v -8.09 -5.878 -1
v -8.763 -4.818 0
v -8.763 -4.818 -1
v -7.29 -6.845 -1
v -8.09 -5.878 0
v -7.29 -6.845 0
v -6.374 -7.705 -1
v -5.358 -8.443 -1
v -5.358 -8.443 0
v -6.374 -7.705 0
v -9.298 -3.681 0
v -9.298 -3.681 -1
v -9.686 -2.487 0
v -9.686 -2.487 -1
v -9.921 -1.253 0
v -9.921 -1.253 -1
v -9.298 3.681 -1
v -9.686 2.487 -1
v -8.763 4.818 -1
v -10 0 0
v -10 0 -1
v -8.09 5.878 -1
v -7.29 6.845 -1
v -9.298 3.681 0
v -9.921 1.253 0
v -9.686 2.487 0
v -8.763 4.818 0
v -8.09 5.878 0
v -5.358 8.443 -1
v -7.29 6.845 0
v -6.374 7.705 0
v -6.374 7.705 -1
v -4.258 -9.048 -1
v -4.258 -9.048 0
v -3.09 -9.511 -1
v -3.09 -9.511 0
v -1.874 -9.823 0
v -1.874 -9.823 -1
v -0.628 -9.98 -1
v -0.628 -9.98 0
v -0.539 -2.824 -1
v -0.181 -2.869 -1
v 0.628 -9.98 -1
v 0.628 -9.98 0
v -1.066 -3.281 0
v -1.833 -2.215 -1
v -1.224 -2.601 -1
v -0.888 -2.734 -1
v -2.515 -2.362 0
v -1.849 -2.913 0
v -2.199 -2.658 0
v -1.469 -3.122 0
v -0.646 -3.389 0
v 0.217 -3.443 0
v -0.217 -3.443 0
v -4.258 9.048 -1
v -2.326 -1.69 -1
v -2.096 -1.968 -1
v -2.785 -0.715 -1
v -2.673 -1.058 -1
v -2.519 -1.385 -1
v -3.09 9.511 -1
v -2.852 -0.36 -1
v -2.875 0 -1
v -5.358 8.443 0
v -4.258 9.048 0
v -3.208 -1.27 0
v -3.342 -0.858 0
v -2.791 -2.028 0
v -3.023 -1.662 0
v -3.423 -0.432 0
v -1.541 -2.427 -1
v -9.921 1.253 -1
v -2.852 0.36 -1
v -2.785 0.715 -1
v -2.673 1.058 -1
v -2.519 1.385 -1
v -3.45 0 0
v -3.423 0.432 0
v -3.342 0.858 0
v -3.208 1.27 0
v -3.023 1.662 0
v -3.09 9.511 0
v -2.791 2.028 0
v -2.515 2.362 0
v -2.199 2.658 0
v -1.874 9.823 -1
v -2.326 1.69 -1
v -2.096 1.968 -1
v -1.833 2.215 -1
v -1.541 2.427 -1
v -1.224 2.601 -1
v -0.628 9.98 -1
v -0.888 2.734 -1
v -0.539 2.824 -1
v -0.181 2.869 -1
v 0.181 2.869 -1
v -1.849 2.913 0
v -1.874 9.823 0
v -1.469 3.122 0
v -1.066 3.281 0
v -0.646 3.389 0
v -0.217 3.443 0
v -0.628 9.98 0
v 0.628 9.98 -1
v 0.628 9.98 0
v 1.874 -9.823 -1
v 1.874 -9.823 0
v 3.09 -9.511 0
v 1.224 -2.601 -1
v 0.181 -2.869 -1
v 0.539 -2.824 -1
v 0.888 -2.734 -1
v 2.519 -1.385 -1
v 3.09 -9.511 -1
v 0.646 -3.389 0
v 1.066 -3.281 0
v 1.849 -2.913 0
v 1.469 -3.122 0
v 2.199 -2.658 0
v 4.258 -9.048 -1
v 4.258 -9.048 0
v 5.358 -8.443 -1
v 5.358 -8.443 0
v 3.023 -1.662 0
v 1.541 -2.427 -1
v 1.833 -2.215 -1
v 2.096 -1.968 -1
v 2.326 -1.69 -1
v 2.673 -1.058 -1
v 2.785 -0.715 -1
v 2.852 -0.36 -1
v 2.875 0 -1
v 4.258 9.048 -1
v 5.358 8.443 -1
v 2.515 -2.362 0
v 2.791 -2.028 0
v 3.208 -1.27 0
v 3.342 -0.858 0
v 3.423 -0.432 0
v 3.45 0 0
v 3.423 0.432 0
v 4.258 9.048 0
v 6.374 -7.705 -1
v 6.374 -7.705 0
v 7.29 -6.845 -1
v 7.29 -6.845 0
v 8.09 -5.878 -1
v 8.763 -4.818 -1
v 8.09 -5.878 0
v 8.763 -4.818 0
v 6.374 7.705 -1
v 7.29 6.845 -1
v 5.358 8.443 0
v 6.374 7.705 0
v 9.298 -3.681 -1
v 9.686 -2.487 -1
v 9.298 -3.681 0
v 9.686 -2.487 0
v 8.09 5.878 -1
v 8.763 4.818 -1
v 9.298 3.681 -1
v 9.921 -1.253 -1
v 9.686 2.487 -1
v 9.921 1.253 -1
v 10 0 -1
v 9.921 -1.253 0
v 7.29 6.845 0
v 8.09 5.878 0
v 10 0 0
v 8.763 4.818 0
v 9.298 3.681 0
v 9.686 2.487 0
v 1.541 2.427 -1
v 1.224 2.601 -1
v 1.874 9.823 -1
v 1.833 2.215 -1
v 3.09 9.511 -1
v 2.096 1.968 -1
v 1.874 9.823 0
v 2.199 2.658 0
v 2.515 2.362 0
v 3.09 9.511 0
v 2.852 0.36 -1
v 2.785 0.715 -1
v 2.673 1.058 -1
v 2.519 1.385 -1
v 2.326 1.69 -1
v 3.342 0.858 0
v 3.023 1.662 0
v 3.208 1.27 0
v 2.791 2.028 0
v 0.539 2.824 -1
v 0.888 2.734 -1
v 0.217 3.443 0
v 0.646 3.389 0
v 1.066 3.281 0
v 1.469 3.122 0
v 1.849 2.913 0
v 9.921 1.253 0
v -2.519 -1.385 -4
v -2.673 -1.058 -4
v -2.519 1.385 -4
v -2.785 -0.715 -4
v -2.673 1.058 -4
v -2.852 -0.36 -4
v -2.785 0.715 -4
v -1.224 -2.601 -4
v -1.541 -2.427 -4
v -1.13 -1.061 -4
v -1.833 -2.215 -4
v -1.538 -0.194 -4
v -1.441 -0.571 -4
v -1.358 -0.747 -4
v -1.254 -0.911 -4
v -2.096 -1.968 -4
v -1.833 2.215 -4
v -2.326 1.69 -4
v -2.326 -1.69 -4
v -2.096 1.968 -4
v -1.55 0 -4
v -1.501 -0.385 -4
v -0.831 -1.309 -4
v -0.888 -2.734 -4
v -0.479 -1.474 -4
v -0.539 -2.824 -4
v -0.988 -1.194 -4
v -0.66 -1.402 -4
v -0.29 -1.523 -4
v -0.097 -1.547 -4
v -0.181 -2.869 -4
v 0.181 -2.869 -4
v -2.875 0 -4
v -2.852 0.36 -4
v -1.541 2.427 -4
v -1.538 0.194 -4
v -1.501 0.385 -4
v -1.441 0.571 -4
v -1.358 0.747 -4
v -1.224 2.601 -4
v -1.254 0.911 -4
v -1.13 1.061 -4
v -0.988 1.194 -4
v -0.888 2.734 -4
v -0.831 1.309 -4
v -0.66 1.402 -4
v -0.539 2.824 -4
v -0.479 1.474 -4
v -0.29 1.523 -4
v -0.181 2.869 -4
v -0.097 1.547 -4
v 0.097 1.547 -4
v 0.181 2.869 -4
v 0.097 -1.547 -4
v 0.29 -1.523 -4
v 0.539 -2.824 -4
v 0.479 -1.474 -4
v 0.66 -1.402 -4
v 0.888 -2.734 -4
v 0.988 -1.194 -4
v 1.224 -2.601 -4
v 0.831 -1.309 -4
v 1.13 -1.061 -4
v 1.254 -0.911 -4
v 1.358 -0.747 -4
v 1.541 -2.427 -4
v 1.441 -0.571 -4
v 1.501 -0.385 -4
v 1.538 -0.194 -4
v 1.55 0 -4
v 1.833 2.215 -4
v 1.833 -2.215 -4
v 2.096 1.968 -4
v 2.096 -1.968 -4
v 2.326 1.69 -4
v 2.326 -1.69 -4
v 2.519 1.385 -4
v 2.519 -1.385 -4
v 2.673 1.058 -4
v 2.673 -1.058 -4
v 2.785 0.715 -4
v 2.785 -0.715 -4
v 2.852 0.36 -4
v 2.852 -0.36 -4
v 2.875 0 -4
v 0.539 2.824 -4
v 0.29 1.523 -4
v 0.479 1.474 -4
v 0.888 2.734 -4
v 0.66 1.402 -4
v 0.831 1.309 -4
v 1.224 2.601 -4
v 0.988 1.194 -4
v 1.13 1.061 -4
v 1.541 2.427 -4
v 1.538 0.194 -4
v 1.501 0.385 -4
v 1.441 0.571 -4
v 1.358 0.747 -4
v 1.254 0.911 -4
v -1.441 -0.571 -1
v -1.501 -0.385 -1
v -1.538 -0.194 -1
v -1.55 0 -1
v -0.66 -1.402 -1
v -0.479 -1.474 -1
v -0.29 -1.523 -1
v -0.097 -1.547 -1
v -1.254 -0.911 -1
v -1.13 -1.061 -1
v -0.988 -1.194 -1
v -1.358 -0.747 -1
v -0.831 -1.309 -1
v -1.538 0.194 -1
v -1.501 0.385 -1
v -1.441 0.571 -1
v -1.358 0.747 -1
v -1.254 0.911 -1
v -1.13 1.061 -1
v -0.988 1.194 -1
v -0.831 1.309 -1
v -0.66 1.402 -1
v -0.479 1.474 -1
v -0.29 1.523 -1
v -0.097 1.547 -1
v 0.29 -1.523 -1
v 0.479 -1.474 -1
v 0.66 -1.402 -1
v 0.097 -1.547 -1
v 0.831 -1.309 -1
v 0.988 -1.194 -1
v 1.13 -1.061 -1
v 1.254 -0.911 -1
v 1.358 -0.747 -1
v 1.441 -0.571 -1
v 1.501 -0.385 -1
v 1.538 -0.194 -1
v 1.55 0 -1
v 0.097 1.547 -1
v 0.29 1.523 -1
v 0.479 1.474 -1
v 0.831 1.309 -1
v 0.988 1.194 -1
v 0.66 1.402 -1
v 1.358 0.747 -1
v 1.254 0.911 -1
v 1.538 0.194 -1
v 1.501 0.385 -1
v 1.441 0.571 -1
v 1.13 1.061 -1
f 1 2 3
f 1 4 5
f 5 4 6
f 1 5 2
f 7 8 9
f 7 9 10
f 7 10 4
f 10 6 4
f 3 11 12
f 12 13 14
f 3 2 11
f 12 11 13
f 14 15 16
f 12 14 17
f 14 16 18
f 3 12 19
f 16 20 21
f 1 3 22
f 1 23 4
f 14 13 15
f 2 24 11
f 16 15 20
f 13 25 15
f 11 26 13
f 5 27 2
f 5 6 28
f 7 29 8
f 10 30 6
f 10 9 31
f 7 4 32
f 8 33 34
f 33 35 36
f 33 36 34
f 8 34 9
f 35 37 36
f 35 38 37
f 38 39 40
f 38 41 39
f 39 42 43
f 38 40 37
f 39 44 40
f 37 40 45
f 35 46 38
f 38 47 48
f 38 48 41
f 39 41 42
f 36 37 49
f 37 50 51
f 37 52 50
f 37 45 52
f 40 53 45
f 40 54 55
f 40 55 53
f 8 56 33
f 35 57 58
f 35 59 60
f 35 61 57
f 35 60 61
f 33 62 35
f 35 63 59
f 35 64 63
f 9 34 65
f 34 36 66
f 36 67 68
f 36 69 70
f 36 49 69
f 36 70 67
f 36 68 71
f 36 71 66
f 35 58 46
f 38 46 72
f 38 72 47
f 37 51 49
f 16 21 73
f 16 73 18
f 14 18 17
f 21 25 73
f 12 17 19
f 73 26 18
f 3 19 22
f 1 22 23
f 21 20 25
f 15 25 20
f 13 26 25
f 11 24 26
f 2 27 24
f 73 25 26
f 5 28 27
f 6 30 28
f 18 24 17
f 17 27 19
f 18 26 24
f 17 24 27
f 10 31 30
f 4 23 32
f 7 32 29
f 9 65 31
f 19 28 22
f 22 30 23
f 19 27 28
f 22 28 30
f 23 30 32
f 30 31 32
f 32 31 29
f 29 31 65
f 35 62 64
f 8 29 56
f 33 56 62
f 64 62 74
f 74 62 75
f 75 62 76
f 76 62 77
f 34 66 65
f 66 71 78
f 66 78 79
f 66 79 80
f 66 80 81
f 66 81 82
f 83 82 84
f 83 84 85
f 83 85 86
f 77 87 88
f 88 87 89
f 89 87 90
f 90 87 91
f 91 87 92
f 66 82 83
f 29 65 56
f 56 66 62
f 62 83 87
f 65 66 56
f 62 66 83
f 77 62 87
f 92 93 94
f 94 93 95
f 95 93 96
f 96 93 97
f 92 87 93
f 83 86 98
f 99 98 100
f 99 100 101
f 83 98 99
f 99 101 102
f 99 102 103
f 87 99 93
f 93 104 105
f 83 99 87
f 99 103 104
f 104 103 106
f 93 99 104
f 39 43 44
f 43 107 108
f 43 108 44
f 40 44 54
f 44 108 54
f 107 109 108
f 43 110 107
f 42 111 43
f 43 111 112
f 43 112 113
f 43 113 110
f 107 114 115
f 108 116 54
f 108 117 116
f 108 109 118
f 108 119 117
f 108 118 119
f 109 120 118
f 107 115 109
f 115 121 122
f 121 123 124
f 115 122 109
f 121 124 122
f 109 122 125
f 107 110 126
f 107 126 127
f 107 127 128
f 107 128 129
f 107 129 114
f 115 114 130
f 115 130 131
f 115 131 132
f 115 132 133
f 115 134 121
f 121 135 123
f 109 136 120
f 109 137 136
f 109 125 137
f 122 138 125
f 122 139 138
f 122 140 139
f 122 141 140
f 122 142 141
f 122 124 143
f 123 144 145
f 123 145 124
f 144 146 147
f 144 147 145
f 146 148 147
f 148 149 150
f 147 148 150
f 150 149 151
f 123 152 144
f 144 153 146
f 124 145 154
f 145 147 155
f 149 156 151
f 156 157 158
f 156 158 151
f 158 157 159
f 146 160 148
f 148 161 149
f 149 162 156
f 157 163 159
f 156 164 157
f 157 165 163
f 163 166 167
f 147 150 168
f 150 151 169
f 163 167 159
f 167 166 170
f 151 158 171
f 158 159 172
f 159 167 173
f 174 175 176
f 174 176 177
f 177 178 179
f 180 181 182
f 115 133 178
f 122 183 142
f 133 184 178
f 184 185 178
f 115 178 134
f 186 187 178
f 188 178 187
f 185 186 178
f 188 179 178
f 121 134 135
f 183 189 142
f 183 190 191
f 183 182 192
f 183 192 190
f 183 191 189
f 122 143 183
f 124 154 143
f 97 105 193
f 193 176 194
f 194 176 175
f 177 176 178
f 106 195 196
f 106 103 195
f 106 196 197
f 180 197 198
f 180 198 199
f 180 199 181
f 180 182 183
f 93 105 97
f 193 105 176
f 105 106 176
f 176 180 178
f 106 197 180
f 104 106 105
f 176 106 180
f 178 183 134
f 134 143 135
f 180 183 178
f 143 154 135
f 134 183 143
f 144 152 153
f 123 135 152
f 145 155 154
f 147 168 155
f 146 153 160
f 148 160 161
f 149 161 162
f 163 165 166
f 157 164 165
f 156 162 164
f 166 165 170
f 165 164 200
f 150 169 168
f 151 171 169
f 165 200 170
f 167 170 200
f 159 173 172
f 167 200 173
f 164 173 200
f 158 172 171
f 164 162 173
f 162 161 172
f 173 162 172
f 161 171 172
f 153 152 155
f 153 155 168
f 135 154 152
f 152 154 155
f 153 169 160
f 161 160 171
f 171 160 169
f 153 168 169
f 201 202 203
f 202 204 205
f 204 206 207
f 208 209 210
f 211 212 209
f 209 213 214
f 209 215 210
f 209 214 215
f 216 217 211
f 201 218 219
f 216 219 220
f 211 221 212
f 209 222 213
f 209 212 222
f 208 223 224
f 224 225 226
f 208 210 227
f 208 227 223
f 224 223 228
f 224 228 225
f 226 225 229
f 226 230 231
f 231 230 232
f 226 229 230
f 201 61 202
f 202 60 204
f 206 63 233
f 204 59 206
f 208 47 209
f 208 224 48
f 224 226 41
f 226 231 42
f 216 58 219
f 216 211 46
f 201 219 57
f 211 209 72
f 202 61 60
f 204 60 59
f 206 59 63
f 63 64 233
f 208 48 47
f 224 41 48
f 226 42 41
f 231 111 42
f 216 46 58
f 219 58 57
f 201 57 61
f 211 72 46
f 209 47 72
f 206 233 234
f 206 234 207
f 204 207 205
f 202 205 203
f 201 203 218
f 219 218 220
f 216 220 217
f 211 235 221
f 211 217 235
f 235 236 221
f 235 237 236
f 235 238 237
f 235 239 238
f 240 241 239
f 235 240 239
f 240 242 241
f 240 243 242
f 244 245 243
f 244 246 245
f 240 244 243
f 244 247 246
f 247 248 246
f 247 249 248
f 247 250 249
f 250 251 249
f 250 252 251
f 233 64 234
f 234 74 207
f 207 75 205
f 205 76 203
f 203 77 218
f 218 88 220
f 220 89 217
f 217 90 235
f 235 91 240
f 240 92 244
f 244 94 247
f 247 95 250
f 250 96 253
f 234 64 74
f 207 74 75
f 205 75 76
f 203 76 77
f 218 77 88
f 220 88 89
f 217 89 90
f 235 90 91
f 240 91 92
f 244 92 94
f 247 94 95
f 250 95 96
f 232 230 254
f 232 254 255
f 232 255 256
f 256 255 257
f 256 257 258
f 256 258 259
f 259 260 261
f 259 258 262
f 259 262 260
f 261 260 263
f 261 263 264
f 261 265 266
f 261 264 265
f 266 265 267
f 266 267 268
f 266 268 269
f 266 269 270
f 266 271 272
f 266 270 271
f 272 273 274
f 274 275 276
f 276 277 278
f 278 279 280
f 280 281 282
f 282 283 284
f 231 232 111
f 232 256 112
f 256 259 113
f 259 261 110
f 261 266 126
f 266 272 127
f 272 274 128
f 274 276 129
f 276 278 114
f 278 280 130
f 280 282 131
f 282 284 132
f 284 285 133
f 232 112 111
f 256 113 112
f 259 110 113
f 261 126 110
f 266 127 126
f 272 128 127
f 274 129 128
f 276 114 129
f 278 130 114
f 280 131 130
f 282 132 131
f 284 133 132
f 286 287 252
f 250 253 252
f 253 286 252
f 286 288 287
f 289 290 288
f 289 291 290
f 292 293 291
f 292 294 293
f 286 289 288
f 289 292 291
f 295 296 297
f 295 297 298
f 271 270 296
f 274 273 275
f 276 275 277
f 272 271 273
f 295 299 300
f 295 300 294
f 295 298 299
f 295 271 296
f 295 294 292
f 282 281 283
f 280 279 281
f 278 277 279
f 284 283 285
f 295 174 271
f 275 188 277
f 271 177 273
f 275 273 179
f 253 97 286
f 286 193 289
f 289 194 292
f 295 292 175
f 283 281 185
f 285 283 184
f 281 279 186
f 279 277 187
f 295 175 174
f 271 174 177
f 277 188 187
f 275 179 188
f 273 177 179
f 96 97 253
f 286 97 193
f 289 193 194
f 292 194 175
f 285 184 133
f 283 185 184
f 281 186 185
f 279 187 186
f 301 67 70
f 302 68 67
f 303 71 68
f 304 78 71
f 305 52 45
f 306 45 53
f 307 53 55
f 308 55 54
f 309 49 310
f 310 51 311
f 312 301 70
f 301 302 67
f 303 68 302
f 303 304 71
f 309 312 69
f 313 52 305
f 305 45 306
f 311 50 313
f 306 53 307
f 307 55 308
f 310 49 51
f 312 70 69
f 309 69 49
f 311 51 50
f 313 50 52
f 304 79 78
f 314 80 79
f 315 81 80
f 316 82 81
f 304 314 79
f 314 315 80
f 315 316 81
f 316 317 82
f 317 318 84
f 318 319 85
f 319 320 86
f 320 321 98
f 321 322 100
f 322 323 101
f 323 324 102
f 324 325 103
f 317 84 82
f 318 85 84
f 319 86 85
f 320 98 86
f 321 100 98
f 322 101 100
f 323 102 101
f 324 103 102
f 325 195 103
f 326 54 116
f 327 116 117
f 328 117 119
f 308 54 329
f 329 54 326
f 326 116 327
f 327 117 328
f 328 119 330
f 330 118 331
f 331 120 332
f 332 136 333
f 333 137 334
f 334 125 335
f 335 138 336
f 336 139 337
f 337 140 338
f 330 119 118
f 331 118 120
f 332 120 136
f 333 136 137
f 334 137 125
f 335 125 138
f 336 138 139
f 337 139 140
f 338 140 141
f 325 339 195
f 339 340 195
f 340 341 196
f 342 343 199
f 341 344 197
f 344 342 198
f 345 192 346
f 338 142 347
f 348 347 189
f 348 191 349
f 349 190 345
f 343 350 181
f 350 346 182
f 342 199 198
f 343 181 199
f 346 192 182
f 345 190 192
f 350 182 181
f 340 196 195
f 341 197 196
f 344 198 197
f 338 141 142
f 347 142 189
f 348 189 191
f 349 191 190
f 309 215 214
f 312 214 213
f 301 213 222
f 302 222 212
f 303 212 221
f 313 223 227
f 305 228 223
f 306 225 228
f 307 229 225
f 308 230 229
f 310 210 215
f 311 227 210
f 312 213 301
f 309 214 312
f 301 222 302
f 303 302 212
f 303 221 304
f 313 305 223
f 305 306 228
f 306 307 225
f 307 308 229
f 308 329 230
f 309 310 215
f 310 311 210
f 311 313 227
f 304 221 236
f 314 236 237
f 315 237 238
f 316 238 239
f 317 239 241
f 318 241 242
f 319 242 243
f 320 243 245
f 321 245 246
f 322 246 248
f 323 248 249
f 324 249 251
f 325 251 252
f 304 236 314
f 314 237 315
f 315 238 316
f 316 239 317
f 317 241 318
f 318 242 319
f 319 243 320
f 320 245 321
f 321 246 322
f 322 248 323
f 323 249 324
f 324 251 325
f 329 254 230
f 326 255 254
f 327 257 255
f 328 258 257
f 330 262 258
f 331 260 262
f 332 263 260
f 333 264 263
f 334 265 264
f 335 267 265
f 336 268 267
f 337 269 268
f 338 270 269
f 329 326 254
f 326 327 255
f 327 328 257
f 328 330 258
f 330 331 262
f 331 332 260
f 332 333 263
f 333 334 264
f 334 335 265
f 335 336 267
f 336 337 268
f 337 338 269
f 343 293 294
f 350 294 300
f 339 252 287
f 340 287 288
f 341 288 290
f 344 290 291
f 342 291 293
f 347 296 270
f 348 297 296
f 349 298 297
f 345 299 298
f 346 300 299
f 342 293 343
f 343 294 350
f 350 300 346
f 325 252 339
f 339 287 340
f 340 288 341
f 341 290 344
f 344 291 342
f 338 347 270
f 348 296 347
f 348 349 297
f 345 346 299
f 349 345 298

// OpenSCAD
$fn = 50;

difference() {
	union() {
		translate(v = [0, 0, -1.0]) {
			cylinder(h = 1.0, r = 10.0);
		}
		#translate(v = [0, 0, -4.0]) {
			cylinder(h = 4.0, r = 2.875);
		}
	}
	union() {
		translate(v = [0, 0, 0]) {
			rotate(a = [0, 0, 0]) {
				difference() {
					union() {
						translate(v = [0, 0, -4.0]) {
							cylinder(h = 4.0, r = 1.25);
						}
						translate(v = [0, 0, -1.0]) {
							cylinder(h = 1.0, r1 = 1.55, r2 = 3.45);
						}
						translate(v = [0, 0, -4.0]) {
							cylinder(h = 4.0, r = 1.55);
						}
						translate(v = [0, 0, -4.0]) {
							cylinder(h = 4.0, r = 1.25);
						}
					}
					union();
				}
			}
		}
	}
}
